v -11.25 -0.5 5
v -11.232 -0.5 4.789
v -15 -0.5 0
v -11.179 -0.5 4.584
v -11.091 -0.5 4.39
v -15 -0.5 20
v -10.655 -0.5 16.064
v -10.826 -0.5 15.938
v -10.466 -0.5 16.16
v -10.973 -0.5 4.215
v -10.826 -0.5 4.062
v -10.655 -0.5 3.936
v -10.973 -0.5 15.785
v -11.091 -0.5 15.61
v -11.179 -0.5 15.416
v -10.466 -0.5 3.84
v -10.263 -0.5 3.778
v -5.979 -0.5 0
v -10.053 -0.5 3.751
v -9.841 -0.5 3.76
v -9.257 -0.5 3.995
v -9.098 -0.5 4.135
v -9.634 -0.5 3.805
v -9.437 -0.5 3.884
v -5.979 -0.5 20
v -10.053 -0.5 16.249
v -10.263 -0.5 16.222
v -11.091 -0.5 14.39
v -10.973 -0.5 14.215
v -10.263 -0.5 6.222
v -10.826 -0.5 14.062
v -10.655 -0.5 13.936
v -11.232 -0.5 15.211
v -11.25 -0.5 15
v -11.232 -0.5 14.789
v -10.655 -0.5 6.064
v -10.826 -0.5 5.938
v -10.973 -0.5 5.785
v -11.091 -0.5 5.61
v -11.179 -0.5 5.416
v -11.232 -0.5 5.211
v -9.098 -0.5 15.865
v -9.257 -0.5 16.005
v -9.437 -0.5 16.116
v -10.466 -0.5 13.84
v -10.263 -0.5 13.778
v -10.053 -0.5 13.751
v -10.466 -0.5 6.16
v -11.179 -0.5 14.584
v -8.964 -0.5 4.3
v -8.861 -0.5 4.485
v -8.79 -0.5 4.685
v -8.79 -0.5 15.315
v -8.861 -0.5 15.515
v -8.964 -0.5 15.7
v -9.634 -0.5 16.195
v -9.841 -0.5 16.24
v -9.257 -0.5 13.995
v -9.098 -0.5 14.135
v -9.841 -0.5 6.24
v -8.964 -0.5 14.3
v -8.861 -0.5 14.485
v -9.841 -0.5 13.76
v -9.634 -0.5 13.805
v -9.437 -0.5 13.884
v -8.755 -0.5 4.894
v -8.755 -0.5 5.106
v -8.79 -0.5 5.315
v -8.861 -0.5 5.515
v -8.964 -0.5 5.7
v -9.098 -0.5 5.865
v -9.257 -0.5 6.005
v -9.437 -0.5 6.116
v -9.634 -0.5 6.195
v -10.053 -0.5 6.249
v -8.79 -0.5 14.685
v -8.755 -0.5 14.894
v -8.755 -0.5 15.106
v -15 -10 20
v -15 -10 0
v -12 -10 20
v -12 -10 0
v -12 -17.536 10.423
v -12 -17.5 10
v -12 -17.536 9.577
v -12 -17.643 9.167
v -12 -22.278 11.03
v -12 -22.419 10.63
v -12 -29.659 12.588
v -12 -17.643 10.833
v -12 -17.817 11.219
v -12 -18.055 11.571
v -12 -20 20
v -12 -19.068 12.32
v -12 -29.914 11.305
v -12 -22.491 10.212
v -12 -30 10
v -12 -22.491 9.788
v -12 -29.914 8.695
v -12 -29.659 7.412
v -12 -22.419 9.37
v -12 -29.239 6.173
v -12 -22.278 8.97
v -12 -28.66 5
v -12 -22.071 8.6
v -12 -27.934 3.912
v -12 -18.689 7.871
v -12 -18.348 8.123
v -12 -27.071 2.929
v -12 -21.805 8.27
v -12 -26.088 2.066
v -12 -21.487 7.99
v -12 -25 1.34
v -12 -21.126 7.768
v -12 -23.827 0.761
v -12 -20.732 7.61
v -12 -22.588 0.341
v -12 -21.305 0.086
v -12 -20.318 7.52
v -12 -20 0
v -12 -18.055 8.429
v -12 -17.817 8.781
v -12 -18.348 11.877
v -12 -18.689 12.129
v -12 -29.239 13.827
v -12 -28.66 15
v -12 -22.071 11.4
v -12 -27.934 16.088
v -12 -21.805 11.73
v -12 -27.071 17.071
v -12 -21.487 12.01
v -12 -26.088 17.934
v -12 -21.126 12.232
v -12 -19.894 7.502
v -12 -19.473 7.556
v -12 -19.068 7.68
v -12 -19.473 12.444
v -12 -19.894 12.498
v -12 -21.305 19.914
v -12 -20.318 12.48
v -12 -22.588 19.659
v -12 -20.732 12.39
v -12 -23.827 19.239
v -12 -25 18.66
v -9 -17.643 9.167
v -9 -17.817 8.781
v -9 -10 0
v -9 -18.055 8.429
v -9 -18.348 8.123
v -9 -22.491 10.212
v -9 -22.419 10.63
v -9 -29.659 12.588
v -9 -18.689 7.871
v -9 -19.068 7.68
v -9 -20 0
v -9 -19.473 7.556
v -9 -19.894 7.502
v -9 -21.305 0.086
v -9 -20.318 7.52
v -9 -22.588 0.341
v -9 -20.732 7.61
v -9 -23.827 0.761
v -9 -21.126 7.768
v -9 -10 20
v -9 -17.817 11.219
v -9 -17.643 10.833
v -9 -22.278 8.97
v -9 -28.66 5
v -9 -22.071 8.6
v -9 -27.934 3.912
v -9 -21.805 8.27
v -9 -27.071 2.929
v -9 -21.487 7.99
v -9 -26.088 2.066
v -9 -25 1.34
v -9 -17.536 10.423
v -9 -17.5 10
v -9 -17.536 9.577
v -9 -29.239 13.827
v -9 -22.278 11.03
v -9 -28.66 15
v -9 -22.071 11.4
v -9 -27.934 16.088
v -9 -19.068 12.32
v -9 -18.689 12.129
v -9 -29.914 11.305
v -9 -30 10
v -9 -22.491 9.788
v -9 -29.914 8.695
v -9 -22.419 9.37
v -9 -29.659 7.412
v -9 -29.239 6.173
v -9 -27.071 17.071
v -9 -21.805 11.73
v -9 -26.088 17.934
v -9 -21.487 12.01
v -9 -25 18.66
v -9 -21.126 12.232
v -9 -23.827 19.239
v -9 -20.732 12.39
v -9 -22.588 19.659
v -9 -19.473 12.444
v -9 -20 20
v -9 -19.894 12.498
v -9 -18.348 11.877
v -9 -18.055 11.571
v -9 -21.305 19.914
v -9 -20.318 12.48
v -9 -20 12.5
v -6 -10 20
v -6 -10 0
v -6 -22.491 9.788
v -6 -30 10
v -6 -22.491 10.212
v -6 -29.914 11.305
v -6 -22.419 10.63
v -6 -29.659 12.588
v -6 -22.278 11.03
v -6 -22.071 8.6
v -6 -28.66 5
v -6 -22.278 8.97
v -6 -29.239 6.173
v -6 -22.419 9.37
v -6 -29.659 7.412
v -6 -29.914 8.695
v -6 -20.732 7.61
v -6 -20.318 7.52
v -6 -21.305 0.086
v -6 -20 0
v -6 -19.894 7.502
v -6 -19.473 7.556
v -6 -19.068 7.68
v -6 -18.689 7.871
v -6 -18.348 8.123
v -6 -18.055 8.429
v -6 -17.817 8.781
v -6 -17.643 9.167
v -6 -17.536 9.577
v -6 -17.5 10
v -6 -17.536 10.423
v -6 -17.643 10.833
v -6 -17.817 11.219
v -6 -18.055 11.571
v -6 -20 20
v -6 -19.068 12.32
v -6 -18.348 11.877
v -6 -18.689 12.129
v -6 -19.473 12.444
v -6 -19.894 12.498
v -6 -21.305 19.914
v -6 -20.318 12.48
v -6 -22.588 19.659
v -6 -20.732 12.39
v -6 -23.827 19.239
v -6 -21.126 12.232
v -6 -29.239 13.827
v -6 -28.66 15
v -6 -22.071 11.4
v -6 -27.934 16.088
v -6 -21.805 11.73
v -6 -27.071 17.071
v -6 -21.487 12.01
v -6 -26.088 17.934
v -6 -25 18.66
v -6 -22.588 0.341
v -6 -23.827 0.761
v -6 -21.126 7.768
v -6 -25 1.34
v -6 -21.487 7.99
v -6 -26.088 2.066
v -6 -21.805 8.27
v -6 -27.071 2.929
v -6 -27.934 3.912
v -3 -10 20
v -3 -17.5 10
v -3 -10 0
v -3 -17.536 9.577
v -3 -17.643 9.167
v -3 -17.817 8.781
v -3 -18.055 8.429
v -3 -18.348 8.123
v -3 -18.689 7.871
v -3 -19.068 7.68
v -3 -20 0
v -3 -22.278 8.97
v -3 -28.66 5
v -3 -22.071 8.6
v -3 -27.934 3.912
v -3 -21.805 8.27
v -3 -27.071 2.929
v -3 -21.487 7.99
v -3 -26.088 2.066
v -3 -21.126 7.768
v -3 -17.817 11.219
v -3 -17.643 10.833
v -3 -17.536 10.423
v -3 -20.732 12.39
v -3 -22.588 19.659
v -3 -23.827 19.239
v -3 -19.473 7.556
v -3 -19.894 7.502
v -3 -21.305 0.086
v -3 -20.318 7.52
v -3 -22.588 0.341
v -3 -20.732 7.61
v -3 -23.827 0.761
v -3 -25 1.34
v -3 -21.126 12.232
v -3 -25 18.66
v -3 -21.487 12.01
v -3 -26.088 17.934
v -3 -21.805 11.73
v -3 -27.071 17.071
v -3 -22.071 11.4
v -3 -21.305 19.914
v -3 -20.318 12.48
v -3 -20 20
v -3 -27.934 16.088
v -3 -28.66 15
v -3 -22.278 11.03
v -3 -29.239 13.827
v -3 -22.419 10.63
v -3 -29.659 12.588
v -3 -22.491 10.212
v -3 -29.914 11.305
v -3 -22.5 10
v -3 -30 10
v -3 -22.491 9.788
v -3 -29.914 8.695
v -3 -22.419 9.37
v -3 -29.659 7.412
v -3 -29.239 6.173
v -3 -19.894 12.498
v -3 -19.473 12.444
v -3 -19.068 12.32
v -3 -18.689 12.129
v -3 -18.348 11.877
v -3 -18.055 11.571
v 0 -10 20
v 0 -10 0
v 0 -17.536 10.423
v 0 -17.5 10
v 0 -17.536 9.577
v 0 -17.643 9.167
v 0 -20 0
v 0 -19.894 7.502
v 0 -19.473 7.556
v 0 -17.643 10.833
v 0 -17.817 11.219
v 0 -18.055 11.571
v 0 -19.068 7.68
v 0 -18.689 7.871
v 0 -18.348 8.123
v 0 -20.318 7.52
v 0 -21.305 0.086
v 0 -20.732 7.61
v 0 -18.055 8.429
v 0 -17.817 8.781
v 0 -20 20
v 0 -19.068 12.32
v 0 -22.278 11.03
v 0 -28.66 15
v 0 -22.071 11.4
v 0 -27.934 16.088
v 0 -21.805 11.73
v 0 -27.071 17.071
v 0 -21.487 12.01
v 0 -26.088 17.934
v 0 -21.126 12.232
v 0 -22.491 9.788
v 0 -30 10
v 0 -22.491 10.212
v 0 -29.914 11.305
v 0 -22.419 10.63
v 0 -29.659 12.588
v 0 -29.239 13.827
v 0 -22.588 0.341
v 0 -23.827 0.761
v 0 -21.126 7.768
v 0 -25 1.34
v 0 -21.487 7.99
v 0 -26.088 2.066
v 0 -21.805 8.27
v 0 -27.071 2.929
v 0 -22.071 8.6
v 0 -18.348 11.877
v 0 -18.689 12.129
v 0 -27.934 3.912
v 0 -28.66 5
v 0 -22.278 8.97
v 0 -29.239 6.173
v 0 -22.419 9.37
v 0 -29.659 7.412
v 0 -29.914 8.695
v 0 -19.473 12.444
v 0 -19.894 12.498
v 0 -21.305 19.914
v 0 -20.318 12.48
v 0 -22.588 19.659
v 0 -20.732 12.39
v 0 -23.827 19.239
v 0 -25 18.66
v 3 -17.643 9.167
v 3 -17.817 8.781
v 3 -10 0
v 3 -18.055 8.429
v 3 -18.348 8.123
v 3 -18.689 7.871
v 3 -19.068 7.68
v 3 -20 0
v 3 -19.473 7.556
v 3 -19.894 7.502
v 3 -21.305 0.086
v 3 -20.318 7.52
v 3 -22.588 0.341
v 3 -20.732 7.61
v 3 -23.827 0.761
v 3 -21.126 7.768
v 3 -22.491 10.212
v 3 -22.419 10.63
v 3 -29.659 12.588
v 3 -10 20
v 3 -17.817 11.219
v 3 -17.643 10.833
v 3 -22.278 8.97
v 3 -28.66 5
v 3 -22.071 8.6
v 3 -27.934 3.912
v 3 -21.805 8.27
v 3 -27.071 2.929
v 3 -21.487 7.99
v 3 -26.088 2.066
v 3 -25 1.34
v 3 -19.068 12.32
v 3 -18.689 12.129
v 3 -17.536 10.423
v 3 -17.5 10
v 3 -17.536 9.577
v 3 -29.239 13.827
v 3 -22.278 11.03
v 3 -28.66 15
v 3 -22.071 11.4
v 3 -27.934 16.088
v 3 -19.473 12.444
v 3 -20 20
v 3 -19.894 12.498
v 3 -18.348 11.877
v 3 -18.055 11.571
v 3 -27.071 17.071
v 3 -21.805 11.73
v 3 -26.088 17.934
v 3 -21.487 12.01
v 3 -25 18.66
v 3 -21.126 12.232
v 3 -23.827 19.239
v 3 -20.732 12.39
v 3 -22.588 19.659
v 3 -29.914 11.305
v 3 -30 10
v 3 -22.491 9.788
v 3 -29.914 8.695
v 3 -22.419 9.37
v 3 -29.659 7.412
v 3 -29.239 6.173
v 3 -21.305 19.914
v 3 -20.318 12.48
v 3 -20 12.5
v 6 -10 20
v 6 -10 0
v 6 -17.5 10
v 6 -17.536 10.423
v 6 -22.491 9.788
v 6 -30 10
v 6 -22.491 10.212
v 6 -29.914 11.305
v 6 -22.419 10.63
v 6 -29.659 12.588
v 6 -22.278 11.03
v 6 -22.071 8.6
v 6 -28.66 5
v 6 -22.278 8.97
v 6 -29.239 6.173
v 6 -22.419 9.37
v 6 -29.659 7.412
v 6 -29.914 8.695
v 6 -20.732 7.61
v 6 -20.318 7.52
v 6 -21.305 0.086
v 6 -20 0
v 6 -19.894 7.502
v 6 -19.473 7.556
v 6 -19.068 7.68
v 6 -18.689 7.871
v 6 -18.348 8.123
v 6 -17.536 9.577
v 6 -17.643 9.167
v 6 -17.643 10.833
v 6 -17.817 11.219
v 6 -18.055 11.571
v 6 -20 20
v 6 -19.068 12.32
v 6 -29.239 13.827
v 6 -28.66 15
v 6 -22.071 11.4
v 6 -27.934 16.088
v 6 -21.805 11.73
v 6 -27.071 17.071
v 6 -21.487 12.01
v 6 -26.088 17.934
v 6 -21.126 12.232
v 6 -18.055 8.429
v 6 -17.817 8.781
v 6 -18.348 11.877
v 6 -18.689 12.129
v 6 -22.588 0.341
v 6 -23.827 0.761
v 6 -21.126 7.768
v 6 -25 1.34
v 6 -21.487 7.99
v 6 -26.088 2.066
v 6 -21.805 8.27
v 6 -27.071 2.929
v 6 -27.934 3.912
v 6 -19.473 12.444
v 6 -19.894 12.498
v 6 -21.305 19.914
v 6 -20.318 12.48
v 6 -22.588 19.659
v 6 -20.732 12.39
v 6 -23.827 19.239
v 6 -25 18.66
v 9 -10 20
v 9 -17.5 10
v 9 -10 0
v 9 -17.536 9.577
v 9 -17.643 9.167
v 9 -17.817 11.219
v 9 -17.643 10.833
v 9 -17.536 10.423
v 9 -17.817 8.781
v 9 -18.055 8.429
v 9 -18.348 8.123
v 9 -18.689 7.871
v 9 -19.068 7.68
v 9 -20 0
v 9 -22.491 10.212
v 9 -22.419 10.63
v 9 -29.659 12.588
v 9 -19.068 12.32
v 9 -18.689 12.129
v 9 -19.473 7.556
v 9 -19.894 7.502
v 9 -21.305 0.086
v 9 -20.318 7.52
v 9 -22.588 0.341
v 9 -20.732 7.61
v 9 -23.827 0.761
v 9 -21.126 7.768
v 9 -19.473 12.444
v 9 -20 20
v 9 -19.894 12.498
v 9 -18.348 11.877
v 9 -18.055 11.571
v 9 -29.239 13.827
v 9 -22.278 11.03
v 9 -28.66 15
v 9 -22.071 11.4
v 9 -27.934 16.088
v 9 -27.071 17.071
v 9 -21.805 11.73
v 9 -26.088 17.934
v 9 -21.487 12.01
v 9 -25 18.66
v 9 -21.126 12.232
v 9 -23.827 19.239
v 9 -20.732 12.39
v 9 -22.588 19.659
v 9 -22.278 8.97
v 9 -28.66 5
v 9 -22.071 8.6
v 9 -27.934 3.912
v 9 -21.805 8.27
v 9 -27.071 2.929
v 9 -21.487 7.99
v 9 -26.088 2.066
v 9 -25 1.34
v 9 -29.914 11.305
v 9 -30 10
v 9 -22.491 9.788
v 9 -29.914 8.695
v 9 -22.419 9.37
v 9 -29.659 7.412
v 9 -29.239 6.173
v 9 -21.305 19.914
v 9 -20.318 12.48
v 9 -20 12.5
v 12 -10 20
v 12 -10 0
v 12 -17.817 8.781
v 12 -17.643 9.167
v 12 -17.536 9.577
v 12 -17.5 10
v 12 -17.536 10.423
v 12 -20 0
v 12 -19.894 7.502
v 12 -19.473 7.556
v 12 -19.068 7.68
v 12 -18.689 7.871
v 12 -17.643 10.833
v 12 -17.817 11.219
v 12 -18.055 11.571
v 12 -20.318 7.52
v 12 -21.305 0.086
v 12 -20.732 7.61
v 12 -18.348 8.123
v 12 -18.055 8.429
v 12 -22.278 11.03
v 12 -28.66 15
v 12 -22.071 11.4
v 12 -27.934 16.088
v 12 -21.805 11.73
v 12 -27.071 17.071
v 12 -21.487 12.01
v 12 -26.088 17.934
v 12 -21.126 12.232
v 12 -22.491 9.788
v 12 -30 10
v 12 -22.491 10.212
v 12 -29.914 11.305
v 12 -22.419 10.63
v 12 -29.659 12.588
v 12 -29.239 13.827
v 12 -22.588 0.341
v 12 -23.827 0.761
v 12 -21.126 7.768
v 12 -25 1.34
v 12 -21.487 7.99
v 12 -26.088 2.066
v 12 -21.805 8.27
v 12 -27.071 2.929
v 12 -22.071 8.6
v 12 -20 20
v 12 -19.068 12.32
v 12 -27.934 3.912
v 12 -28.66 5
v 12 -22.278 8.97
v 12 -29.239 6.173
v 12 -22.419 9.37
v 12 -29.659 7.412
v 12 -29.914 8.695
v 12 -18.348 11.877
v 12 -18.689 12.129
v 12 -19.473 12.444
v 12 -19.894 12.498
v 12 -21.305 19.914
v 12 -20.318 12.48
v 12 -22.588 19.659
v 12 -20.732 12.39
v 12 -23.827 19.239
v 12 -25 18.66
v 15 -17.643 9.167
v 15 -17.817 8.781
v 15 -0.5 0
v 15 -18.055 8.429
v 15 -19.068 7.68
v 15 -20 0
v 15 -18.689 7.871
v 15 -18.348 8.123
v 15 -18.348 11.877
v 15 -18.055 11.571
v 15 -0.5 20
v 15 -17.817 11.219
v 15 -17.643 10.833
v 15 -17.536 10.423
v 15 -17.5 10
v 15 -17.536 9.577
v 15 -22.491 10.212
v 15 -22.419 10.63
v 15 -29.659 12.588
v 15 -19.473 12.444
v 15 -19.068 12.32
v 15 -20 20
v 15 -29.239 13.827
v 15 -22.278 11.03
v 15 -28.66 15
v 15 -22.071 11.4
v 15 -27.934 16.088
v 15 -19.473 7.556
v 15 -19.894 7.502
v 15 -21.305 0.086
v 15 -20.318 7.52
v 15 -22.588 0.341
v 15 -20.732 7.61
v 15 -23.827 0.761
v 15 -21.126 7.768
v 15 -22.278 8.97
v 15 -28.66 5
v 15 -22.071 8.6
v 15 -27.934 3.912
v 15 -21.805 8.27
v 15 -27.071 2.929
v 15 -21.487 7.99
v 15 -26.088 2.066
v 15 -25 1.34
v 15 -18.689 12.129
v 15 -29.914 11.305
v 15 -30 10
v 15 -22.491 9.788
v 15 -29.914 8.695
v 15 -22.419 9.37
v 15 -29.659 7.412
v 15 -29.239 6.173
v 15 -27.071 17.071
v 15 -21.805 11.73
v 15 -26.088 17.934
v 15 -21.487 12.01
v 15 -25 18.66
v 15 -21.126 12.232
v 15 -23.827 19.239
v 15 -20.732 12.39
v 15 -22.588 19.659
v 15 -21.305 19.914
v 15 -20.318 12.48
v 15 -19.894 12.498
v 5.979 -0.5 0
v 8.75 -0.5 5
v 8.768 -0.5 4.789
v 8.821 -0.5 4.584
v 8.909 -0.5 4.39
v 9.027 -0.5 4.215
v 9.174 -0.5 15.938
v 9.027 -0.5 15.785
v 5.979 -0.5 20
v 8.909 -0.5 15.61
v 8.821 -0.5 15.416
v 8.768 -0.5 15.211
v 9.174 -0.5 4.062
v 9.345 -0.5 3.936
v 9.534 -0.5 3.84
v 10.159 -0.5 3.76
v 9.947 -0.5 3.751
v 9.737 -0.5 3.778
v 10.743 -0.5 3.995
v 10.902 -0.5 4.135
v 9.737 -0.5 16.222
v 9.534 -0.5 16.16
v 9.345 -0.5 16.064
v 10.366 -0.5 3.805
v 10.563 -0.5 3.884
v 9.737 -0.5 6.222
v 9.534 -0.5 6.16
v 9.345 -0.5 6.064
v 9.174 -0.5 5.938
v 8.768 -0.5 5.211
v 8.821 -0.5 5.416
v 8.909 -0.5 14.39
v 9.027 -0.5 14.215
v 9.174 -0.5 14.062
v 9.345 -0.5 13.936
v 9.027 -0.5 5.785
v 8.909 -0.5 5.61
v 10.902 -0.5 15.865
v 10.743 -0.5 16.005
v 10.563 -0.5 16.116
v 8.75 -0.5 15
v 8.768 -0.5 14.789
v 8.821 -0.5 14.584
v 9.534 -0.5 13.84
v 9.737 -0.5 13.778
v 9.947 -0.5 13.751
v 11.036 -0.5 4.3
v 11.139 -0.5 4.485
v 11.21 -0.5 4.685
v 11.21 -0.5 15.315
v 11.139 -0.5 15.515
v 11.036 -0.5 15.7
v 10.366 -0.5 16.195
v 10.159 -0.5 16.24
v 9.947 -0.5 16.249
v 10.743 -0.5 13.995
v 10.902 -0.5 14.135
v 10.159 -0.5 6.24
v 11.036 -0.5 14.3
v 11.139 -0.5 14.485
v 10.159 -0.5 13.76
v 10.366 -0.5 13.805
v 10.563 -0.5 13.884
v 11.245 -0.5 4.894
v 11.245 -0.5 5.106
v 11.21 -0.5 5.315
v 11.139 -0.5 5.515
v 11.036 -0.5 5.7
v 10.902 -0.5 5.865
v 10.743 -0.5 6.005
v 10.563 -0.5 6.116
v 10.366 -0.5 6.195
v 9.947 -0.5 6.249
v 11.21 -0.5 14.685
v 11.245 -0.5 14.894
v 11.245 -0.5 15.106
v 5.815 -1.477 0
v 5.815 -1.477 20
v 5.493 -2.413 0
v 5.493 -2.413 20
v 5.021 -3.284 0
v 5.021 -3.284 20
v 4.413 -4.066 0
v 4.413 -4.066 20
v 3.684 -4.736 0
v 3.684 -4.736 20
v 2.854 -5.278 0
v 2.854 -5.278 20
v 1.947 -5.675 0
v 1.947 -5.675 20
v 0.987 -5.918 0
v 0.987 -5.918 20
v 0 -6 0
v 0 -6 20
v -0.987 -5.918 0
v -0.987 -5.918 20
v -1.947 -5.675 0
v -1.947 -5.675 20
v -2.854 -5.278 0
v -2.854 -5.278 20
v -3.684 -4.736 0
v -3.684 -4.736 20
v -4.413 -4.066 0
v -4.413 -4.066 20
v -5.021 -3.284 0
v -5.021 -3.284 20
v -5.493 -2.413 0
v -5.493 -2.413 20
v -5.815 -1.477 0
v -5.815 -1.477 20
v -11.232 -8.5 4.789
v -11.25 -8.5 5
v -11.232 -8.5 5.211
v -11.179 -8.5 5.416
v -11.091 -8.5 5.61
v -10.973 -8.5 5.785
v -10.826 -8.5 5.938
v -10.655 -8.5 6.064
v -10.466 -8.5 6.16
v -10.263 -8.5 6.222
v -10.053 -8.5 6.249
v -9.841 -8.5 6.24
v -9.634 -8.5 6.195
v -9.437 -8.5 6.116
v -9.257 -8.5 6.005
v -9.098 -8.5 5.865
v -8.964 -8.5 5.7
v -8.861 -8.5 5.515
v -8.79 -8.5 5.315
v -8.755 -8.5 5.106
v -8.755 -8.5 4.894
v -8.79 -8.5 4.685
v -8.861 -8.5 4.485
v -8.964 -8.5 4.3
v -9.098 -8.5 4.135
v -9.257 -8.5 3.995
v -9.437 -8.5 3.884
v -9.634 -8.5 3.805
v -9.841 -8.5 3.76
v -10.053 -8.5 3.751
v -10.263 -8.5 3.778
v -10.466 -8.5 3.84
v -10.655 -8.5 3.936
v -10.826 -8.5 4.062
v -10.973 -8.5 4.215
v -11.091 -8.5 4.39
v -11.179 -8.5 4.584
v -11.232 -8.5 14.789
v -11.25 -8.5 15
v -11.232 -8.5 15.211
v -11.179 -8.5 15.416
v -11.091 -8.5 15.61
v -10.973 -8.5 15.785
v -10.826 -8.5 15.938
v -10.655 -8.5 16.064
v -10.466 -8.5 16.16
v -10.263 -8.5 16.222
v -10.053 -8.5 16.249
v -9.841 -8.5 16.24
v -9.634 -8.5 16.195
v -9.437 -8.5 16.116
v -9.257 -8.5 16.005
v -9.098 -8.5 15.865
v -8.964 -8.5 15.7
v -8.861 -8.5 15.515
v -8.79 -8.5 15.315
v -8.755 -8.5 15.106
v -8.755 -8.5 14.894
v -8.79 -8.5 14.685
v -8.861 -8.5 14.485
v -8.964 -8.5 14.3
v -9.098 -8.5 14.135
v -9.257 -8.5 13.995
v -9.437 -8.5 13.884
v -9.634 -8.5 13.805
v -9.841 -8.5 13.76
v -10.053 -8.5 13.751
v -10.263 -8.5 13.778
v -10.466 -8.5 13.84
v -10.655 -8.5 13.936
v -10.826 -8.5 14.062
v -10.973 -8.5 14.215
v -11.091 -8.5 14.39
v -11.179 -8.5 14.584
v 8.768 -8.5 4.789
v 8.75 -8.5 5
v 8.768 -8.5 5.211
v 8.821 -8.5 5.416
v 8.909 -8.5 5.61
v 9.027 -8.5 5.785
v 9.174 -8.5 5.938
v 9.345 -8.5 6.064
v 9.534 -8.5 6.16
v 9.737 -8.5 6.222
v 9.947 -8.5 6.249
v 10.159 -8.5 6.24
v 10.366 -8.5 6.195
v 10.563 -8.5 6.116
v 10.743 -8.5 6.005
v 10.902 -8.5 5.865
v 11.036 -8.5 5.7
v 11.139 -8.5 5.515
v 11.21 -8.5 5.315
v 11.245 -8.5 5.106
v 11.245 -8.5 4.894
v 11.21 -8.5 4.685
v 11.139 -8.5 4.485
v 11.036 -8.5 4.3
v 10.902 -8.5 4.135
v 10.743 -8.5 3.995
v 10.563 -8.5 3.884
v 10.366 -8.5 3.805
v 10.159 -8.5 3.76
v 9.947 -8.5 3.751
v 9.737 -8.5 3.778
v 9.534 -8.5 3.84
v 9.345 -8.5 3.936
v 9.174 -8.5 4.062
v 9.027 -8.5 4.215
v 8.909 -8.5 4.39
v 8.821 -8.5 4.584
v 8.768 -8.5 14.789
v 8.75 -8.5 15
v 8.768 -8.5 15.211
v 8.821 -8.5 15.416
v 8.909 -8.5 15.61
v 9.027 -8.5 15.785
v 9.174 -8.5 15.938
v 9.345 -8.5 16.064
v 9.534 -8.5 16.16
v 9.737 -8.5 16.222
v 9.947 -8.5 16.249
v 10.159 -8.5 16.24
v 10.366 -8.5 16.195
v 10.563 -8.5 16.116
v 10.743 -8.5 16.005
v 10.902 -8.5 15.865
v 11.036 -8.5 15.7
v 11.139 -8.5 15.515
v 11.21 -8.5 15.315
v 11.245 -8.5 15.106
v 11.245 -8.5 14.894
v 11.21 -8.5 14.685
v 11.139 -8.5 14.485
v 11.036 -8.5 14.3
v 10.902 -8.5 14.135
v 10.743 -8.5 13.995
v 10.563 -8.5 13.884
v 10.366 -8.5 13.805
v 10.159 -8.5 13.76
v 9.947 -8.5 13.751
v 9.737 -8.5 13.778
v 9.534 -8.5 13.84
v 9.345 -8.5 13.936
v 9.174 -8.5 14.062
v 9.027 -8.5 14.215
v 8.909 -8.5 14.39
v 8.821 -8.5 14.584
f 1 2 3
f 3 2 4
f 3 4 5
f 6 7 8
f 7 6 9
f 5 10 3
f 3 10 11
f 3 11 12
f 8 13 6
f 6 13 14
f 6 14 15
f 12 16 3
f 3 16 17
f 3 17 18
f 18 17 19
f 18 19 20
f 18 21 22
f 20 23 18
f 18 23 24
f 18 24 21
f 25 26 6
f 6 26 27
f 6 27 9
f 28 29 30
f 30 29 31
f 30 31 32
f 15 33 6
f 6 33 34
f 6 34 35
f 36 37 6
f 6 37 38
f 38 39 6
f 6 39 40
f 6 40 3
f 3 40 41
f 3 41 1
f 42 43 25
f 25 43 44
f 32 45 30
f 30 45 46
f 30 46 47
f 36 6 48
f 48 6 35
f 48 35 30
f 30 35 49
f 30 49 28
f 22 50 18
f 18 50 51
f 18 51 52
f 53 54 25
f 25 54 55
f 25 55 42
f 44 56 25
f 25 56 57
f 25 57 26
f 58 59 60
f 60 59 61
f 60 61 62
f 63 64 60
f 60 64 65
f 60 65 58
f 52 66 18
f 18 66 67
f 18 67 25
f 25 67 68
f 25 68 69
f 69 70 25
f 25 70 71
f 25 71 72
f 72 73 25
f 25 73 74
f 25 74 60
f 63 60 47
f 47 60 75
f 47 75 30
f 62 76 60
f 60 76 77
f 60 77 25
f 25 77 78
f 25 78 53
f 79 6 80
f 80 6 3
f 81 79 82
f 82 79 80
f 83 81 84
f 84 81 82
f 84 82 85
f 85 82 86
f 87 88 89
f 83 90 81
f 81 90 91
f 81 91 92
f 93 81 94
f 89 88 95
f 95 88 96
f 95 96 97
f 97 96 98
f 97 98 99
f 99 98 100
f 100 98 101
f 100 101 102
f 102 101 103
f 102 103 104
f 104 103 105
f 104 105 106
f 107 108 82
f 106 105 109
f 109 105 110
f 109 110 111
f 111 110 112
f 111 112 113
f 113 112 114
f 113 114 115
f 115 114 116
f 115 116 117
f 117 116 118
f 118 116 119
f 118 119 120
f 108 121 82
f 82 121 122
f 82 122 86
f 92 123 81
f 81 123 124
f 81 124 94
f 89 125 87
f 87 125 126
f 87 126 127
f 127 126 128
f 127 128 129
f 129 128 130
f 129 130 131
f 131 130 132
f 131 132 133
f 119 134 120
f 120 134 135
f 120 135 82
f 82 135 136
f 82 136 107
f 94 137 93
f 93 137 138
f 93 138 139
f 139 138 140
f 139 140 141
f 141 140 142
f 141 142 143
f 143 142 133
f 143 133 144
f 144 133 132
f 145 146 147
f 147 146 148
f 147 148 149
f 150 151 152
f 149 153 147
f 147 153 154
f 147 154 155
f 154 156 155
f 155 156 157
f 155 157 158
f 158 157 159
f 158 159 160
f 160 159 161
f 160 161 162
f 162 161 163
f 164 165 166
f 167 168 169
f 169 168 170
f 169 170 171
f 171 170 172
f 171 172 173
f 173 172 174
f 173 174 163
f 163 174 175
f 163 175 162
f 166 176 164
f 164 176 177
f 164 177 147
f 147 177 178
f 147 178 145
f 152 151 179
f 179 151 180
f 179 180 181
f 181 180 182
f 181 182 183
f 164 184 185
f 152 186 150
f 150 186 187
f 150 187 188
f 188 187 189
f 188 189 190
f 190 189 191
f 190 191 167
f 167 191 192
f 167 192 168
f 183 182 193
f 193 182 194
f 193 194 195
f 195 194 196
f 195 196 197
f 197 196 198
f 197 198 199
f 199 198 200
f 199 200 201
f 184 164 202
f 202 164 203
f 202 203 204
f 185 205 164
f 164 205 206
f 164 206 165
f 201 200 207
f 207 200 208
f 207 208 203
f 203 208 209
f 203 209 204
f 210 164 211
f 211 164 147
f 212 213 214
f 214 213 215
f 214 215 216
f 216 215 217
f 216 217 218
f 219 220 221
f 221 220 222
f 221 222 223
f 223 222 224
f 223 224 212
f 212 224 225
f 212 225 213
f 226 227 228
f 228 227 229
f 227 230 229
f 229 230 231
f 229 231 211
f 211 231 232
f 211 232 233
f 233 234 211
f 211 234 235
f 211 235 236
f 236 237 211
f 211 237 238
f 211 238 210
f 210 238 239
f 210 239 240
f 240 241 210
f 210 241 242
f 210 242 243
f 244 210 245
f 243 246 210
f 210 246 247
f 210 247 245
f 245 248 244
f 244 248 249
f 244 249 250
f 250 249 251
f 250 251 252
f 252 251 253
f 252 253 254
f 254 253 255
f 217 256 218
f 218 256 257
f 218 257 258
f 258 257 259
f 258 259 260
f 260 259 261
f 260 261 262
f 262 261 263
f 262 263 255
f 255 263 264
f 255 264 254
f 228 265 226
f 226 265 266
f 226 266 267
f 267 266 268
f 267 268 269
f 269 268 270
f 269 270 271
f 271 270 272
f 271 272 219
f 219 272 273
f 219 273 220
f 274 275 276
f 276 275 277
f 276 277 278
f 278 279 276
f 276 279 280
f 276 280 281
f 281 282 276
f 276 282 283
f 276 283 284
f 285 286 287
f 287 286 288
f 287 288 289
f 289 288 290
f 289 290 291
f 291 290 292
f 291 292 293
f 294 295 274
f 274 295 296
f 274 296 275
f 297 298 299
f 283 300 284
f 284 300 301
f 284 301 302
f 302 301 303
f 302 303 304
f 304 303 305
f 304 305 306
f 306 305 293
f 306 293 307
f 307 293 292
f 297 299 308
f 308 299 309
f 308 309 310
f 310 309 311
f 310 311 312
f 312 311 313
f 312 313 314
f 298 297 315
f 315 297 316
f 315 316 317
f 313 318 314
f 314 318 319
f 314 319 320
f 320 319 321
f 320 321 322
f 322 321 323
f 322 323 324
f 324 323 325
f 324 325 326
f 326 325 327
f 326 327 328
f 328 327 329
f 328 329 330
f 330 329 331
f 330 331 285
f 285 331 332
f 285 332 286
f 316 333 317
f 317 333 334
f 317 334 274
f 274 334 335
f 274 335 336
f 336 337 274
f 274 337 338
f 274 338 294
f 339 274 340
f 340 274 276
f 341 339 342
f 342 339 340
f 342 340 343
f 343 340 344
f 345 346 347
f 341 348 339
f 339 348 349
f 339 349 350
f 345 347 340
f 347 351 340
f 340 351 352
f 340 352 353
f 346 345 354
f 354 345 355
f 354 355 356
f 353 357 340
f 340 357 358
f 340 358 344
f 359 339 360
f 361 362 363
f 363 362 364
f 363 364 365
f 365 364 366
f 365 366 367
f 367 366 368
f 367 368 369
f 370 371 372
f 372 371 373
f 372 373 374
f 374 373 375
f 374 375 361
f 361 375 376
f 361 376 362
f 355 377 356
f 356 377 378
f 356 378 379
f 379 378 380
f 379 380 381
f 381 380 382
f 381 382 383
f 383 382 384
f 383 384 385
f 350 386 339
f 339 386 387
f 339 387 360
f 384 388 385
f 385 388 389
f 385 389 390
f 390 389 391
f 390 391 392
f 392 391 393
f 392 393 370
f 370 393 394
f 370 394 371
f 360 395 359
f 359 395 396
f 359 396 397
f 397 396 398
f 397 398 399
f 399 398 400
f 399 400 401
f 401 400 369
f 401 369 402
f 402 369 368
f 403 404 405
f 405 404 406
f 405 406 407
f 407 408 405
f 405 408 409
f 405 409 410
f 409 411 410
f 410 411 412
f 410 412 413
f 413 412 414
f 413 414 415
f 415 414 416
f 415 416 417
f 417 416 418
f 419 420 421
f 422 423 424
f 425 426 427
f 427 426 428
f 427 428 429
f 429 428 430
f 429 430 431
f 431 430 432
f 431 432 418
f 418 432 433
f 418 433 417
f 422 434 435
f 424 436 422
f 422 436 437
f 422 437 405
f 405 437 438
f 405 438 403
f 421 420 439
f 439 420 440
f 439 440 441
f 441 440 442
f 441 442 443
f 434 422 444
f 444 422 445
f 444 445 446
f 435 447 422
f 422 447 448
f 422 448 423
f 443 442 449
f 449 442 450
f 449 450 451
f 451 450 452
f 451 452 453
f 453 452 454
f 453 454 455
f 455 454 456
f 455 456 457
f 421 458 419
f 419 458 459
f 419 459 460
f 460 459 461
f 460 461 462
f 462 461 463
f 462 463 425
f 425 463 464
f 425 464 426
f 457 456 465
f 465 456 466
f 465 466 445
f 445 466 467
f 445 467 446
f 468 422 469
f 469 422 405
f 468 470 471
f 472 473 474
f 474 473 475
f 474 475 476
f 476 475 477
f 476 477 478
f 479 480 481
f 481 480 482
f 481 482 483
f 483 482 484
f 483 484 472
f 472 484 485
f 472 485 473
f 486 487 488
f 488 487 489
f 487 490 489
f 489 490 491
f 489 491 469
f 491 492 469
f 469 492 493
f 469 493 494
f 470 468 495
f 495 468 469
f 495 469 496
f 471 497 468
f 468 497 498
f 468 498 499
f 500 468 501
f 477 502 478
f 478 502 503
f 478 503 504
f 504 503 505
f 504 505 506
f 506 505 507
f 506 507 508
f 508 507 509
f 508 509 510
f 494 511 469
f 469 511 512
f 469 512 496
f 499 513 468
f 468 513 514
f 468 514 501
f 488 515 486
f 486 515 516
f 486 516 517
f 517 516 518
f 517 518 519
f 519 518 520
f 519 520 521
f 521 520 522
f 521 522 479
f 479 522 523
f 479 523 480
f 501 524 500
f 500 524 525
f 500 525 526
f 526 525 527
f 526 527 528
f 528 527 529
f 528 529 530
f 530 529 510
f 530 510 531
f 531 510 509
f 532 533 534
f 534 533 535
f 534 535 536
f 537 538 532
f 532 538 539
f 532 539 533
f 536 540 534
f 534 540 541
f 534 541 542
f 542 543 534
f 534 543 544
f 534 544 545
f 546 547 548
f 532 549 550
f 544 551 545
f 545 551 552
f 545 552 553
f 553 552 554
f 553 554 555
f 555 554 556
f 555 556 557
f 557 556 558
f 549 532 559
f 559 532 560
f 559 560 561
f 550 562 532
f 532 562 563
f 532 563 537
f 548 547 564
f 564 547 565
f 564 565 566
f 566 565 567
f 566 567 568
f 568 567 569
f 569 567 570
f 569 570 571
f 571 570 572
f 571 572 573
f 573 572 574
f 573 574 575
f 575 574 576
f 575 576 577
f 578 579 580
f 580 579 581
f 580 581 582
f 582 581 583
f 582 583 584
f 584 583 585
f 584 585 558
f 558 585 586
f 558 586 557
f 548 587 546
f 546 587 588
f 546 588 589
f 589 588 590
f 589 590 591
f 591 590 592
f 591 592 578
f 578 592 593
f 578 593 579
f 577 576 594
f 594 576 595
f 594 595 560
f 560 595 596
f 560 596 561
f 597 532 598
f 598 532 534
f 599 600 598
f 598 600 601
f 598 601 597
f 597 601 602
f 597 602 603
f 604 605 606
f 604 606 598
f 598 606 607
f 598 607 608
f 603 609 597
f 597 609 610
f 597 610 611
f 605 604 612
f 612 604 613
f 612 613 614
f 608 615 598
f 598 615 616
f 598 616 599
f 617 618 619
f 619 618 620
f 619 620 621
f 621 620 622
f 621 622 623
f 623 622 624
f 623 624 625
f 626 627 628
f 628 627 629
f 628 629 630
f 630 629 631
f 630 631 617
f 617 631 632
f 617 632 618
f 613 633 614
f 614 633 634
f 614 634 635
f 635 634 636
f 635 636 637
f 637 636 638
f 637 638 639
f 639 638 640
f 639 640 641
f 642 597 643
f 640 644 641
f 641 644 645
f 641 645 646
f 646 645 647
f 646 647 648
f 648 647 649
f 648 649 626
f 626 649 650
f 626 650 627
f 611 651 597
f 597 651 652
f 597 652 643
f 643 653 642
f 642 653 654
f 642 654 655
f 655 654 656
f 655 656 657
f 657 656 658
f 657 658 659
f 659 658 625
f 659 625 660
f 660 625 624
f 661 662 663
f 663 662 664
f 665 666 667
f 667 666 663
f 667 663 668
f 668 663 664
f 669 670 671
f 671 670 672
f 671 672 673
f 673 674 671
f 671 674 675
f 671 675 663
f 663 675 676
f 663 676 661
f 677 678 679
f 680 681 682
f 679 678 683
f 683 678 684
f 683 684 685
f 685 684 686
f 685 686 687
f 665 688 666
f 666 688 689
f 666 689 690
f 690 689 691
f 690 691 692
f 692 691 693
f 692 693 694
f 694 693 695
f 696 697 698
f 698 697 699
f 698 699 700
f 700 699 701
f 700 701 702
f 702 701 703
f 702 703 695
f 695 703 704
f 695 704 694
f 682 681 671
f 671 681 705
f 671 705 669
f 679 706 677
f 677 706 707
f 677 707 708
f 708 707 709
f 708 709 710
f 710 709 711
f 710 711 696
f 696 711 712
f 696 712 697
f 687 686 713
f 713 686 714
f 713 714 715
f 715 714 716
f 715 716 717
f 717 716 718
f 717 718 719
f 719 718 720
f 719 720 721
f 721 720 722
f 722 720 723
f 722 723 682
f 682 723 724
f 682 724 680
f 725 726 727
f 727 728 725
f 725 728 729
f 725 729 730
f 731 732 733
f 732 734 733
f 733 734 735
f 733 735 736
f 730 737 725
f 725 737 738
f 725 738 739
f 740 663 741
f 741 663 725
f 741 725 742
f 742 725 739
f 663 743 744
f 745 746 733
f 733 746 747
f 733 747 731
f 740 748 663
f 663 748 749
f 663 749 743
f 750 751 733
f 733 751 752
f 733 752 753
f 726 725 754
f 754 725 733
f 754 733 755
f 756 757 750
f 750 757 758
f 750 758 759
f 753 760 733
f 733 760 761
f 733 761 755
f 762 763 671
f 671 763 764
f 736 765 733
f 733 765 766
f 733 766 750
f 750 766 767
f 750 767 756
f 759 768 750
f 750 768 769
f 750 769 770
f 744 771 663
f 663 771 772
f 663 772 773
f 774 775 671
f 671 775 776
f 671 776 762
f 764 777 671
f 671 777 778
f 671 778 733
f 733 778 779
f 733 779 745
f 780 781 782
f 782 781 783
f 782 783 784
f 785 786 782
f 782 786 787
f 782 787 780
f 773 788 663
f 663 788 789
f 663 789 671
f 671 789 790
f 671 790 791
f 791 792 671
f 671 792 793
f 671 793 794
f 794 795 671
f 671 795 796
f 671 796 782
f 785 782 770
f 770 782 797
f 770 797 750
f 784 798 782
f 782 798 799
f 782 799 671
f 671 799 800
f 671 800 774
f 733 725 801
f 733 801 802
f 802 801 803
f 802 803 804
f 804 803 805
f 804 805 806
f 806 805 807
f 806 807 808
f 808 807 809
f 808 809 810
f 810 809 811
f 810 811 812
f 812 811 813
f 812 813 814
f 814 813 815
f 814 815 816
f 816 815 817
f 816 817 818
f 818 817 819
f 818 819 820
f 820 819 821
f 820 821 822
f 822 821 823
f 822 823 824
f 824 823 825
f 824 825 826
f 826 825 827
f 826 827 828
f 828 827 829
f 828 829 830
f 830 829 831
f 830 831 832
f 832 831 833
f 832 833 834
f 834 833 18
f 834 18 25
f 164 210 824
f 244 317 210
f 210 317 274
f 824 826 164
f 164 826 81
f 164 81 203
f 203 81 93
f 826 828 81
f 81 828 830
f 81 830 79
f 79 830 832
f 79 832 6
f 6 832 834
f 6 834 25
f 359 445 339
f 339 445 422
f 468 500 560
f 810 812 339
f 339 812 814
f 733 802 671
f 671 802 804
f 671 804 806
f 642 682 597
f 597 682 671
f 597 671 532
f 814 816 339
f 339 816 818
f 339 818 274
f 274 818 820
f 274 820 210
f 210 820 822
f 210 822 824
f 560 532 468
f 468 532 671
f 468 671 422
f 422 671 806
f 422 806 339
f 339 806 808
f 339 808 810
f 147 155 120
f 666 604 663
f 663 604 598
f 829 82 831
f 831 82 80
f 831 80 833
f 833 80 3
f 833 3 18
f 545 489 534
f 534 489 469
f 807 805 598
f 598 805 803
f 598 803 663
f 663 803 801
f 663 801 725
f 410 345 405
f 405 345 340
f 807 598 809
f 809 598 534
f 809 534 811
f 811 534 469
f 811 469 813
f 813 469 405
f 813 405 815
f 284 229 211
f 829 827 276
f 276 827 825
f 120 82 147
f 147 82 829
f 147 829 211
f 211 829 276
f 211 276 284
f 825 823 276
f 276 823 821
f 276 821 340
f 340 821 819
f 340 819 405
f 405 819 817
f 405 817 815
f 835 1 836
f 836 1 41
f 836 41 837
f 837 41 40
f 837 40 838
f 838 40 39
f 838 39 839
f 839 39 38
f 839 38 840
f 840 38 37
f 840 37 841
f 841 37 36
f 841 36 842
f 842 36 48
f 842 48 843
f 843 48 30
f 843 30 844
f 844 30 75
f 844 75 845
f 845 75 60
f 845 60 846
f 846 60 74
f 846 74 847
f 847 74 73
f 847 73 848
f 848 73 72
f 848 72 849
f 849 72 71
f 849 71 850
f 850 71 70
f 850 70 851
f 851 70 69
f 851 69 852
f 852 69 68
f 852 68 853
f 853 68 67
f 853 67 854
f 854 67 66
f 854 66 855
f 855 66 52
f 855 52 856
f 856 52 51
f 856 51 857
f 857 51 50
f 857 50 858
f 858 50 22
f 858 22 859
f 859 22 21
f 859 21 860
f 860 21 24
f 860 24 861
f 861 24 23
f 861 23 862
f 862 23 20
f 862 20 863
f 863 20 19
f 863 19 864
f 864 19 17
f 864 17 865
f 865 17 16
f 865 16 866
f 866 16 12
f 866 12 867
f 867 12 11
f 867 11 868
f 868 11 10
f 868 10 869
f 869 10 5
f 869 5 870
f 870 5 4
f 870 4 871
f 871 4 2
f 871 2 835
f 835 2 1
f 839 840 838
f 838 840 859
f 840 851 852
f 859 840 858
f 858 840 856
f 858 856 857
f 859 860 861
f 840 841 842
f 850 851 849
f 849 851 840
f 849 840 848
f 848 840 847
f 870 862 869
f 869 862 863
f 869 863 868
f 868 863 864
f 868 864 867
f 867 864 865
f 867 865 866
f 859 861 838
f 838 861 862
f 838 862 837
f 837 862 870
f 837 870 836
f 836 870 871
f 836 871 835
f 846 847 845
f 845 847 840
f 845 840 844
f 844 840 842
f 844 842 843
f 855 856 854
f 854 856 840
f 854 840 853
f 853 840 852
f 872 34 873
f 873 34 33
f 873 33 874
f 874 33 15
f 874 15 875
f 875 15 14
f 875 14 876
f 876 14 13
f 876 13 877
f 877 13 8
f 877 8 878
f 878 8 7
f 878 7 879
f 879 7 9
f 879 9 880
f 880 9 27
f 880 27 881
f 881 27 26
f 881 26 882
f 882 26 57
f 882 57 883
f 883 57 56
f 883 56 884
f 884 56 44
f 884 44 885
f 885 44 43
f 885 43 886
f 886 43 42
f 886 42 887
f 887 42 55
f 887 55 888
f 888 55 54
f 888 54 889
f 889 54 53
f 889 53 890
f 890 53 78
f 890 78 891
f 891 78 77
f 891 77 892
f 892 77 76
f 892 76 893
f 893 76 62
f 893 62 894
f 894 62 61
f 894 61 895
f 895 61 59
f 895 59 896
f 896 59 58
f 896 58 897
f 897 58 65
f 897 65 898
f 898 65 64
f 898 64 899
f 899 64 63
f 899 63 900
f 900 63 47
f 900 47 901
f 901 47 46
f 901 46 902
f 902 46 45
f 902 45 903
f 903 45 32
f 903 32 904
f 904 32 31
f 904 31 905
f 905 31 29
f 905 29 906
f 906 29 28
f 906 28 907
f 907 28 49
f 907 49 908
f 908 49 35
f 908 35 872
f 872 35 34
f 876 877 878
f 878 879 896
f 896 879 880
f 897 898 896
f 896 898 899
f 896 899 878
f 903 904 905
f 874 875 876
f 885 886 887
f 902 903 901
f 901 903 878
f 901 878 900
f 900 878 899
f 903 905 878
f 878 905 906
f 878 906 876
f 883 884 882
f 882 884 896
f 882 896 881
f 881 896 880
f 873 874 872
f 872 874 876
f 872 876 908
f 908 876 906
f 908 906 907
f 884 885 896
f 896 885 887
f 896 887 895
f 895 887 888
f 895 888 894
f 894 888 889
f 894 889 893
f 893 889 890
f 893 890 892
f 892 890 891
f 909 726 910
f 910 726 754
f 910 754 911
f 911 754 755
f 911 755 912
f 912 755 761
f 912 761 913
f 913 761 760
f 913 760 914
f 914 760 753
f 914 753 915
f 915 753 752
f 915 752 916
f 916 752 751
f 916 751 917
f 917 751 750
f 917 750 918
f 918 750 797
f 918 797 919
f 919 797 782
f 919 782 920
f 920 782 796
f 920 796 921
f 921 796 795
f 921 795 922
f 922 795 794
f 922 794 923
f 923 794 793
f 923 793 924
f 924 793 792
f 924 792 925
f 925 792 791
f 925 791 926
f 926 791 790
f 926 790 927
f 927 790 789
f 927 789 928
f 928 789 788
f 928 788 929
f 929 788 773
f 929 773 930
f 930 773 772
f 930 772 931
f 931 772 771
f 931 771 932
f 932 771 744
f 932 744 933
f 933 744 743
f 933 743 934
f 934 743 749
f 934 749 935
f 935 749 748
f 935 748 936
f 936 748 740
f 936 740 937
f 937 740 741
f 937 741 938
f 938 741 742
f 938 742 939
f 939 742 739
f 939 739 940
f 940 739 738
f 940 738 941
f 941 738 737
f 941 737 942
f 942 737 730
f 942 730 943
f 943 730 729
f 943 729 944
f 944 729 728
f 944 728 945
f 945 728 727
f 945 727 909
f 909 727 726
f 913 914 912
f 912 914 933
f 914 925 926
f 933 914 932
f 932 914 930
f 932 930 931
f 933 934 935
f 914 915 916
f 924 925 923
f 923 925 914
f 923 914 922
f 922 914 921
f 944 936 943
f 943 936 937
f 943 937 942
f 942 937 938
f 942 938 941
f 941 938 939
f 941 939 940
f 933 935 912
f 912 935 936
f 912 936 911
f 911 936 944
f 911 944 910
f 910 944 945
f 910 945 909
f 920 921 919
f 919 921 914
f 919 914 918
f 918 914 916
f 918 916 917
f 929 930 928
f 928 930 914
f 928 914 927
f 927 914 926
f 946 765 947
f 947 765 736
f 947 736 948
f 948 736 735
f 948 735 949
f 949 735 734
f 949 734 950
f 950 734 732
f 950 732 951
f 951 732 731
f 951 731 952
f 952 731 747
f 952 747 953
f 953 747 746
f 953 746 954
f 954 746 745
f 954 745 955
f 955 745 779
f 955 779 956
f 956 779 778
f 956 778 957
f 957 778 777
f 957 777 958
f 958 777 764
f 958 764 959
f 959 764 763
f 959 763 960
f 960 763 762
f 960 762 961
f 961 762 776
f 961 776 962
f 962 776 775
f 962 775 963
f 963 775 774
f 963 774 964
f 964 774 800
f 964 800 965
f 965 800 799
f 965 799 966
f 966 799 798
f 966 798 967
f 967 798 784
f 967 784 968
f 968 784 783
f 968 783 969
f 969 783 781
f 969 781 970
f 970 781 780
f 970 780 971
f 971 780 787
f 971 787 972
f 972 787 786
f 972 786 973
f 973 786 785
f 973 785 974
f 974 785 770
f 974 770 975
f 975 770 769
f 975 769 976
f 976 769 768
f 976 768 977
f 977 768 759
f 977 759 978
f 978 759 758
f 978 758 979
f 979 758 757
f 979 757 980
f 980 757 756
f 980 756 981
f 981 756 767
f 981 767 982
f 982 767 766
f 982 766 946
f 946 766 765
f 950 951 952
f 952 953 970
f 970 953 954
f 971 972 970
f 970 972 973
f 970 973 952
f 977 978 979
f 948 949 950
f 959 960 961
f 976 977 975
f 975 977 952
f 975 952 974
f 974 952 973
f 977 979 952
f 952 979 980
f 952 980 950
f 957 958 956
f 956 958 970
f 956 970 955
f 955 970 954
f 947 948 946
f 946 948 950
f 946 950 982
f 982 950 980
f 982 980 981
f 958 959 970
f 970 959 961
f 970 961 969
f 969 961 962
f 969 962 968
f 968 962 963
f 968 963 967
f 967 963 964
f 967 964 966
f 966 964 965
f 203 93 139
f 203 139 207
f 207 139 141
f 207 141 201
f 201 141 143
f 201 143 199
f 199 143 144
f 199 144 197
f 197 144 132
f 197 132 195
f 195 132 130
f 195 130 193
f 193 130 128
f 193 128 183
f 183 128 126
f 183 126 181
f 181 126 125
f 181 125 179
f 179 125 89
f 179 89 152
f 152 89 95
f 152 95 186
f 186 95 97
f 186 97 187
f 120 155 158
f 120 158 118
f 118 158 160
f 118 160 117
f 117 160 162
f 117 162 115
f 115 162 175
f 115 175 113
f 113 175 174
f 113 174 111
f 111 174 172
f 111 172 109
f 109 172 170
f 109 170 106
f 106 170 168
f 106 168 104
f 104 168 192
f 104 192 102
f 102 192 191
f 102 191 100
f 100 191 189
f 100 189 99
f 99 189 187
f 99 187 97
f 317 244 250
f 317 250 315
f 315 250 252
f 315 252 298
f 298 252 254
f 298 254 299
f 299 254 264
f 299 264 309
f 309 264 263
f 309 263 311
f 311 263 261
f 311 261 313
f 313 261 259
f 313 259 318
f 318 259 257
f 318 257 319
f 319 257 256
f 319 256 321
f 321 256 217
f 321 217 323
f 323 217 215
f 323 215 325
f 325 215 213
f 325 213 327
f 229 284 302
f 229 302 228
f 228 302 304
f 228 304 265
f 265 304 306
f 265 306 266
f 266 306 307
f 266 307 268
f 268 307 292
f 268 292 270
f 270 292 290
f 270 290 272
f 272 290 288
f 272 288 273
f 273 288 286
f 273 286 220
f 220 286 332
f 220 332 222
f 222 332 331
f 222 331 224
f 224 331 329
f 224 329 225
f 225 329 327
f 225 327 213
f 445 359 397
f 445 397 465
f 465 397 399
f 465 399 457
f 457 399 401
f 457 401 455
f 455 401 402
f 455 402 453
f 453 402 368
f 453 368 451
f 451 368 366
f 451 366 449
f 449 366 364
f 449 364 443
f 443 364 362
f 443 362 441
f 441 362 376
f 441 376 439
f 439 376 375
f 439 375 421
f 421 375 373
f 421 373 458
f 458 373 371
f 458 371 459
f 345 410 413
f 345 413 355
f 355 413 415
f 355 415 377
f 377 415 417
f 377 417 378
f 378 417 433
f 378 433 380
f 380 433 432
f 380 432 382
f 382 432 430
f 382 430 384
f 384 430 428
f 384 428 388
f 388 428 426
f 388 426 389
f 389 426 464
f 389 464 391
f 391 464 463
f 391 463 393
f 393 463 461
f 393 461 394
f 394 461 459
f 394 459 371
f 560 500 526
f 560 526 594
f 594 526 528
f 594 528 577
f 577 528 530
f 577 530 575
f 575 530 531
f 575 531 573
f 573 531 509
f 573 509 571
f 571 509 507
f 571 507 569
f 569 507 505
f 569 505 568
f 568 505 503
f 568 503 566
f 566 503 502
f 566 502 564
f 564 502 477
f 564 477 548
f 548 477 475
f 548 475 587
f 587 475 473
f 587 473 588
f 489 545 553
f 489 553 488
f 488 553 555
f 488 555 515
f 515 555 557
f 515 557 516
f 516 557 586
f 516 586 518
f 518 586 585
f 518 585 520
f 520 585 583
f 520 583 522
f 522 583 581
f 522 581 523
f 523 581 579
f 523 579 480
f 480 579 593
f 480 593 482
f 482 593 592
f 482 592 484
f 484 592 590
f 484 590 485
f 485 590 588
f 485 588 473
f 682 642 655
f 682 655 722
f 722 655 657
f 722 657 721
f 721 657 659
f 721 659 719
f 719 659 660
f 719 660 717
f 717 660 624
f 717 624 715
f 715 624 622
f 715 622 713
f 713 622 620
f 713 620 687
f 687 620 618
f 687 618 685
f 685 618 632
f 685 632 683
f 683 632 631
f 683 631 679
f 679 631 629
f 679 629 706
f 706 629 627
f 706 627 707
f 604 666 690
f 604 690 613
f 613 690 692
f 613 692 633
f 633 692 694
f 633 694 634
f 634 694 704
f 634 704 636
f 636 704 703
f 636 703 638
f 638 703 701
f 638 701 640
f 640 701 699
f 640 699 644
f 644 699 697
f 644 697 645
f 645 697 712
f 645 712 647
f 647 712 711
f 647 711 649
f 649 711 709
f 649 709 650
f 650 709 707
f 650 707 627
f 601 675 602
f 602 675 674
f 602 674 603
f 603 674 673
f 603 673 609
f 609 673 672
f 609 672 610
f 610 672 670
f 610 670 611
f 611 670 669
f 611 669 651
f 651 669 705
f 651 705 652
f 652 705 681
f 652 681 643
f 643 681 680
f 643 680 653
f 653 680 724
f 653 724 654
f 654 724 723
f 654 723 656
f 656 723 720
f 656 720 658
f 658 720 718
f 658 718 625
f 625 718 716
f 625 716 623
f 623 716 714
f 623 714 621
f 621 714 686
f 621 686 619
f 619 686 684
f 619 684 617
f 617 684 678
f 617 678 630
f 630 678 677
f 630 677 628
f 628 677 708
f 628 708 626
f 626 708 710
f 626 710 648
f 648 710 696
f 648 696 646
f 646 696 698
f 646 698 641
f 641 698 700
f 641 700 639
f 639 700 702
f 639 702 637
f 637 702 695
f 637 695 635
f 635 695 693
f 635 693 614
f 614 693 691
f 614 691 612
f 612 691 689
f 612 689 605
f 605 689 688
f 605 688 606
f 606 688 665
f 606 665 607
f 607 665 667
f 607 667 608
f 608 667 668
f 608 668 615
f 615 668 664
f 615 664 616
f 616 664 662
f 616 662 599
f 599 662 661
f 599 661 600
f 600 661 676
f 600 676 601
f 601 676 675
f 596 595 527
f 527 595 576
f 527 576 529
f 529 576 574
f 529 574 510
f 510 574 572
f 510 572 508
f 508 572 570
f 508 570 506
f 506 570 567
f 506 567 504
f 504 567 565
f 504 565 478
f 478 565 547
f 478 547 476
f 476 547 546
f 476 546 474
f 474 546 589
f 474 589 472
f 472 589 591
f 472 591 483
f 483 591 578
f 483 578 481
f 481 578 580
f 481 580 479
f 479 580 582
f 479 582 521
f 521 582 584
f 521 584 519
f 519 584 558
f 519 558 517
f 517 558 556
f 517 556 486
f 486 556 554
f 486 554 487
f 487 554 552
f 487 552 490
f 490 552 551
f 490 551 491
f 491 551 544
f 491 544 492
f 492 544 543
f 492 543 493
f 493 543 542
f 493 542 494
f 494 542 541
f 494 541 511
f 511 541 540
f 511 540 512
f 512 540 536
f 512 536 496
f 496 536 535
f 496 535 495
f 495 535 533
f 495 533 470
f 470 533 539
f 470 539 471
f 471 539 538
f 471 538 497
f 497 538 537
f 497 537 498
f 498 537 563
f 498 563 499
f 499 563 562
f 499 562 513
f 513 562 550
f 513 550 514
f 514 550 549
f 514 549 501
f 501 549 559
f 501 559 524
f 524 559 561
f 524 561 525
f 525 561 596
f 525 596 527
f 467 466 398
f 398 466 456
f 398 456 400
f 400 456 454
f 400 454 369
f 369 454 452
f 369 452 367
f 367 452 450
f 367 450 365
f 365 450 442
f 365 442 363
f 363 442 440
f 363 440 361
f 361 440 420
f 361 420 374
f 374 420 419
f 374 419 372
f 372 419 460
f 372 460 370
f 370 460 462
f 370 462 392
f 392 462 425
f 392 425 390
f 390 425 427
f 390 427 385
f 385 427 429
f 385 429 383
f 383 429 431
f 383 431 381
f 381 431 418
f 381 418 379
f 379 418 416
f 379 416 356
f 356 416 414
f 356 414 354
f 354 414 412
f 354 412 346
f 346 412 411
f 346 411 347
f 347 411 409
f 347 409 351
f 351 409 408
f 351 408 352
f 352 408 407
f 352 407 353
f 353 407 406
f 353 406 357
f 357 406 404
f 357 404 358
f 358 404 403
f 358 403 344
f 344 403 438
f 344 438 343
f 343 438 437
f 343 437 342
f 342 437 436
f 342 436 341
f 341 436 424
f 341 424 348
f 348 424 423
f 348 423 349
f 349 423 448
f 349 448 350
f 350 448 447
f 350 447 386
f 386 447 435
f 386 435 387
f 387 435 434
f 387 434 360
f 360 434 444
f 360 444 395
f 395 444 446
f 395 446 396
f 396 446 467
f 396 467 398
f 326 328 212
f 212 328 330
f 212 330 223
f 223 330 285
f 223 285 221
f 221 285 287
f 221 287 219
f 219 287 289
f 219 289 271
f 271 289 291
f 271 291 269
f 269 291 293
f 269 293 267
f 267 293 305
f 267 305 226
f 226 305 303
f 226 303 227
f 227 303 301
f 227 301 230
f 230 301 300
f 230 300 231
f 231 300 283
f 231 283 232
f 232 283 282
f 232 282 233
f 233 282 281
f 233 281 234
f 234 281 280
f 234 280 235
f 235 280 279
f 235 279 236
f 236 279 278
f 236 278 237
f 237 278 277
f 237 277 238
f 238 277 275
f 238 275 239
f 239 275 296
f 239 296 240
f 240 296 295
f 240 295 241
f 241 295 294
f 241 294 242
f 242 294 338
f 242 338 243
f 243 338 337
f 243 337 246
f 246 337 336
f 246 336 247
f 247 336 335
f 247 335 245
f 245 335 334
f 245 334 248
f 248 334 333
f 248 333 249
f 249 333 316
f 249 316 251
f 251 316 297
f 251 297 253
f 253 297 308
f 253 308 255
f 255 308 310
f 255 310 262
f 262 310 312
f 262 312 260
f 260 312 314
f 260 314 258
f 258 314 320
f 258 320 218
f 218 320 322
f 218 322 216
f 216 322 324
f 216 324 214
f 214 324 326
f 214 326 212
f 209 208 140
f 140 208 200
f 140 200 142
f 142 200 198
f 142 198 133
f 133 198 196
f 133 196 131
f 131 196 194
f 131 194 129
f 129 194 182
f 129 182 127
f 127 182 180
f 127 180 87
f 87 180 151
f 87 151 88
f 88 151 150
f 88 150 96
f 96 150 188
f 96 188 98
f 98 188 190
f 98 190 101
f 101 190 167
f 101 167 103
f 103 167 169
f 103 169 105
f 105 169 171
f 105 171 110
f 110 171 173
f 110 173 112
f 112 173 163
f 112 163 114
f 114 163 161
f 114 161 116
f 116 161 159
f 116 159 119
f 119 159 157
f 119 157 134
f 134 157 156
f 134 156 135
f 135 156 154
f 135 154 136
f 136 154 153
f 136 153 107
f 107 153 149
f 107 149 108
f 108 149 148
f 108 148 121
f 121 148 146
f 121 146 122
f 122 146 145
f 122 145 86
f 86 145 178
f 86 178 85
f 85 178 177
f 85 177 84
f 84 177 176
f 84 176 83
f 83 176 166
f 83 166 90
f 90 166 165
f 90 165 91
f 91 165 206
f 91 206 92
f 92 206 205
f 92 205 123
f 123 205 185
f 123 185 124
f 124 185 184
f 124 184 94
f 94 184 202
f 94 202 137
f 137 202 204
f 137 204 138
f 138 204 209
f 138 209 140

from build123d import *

# Parameters (mm, degrees)
BOSS_EXTRU_1_DEPTH      = 20
ESQUISSE2_R             = 1.25
ENL_V_MAT_EXTRU_1_DEPTH = 8
CONG_1_R                = 10
ESQUISSE3_R             = 2.5
ENL_V_MAT_EXTRU_2_DEPTH = 30


with BuildPart() as part:
    # Esquisse1 → Boss.-Extru.1 (new body)
    with BuildSketch(Plane.XY):
        with BuildLine():
            Line((-15, -0.5), (-15, -10))
            Line((-15, -10), (-12, -10))
            Line((-12, -10), (-12, -30))
            Line((-12, -30), (-9, -30))
            Line((-9, -30), (-9, -10))
            Line((-9, -10), (-6, -10))
            Line((-6, -10), (-6, -30))
            Line((-6, -30), (-3, -30))
            Line((-3, -30), (-3, -10))
            Line((-3, -10), (0, -10))
            Line((0, -10), (0, -30))
            Line((0, -30), (3, -30))
            Line((3, -30), (3, -10))
            Line((3, -10), (6, -10))
            Line((6, -10), (6, -30))
            Line((6, -30), (9, -30))
            Line((9, -30), (9, -10))
            Line((9, -10), (12, -10))
            Line((12, -10), (12, -30))
            Line((12, -30), (15, -30))
            Line((15, -30), (15, -0.5))
            Line((15, -0.5), (5.979130372, -0.5))
            ThreePointArc((5.979130372, -0.5), (0, -6), (-5.979130372, -0.5))
            Line((-5.979130372, -0.5), (-15, -0.5))
        make_face()
    extrude(amount=BOSS_EXTRU_1_DEPTH)

    # Esquisse2 → Enlèv. mat.-Extru.1 (cut)
    with BuildSketch(Plane(origin=(0, -0.5, 0), x_dir=(1, 0, 0), z_dir=(0, 1, 0))):
        with Locations(Location((-10, -5, 0), (0, 0, 180))):
            Circle(ESQUISSE2_R)
        with Locations(Location((-10, -15, 0), (0, 0, 180))):
            Circle(ESQUISSE2_R)
        with Locations(Location((10, -5, 0), (0, 0, 180))):
            Circle(ESQUISSE2_R)
        with Locations(Location((10, -15, 0), (0, 0, 180))):
            Circle(ESQUISSE2_R)
    extrude(amount=-ENL_V_MAT_EXTRU_1_DEPTH, mode=Mode.SUBTRACT)

    # Congé1
    cong_1_edges = [part.edges().sort_by_distance(p)[0] for p in [
        (-10.5, -30, 0),
        (-4.5, -30, 0),
        (1.5, -30, 0),
        (7.5, -30, 0),
        (13.5, -30, 0),
        (13.5, -30, 20),
        (7.5, -30, 20),
        (1.5, -30, 20),
        (-4.5, -30, 20),
        (-10.5, -30, 20),
    ]]
    fillet(cong_1_edges, radius=CONG_1_R - 0.0001)  # a hair under: the kernel refuses the full size

    # Esquisse3 → Enlèv. mat.-Extru.2 (cut)
    with BuildSketch(Plane(origin=(15, 0, 0), x_dir=(0, 0, -1), z_dir=(1, 0, 0))):
        with Locations(Location((-10, -20, 0), (0, 0, 90))):
            Circle(ESQUISSE3_R)
    extrude(amount=-ENL_V_MAT_EXTRU_2_DEPTH, mode=Mode.SUBTRACT)


solid = part.part
